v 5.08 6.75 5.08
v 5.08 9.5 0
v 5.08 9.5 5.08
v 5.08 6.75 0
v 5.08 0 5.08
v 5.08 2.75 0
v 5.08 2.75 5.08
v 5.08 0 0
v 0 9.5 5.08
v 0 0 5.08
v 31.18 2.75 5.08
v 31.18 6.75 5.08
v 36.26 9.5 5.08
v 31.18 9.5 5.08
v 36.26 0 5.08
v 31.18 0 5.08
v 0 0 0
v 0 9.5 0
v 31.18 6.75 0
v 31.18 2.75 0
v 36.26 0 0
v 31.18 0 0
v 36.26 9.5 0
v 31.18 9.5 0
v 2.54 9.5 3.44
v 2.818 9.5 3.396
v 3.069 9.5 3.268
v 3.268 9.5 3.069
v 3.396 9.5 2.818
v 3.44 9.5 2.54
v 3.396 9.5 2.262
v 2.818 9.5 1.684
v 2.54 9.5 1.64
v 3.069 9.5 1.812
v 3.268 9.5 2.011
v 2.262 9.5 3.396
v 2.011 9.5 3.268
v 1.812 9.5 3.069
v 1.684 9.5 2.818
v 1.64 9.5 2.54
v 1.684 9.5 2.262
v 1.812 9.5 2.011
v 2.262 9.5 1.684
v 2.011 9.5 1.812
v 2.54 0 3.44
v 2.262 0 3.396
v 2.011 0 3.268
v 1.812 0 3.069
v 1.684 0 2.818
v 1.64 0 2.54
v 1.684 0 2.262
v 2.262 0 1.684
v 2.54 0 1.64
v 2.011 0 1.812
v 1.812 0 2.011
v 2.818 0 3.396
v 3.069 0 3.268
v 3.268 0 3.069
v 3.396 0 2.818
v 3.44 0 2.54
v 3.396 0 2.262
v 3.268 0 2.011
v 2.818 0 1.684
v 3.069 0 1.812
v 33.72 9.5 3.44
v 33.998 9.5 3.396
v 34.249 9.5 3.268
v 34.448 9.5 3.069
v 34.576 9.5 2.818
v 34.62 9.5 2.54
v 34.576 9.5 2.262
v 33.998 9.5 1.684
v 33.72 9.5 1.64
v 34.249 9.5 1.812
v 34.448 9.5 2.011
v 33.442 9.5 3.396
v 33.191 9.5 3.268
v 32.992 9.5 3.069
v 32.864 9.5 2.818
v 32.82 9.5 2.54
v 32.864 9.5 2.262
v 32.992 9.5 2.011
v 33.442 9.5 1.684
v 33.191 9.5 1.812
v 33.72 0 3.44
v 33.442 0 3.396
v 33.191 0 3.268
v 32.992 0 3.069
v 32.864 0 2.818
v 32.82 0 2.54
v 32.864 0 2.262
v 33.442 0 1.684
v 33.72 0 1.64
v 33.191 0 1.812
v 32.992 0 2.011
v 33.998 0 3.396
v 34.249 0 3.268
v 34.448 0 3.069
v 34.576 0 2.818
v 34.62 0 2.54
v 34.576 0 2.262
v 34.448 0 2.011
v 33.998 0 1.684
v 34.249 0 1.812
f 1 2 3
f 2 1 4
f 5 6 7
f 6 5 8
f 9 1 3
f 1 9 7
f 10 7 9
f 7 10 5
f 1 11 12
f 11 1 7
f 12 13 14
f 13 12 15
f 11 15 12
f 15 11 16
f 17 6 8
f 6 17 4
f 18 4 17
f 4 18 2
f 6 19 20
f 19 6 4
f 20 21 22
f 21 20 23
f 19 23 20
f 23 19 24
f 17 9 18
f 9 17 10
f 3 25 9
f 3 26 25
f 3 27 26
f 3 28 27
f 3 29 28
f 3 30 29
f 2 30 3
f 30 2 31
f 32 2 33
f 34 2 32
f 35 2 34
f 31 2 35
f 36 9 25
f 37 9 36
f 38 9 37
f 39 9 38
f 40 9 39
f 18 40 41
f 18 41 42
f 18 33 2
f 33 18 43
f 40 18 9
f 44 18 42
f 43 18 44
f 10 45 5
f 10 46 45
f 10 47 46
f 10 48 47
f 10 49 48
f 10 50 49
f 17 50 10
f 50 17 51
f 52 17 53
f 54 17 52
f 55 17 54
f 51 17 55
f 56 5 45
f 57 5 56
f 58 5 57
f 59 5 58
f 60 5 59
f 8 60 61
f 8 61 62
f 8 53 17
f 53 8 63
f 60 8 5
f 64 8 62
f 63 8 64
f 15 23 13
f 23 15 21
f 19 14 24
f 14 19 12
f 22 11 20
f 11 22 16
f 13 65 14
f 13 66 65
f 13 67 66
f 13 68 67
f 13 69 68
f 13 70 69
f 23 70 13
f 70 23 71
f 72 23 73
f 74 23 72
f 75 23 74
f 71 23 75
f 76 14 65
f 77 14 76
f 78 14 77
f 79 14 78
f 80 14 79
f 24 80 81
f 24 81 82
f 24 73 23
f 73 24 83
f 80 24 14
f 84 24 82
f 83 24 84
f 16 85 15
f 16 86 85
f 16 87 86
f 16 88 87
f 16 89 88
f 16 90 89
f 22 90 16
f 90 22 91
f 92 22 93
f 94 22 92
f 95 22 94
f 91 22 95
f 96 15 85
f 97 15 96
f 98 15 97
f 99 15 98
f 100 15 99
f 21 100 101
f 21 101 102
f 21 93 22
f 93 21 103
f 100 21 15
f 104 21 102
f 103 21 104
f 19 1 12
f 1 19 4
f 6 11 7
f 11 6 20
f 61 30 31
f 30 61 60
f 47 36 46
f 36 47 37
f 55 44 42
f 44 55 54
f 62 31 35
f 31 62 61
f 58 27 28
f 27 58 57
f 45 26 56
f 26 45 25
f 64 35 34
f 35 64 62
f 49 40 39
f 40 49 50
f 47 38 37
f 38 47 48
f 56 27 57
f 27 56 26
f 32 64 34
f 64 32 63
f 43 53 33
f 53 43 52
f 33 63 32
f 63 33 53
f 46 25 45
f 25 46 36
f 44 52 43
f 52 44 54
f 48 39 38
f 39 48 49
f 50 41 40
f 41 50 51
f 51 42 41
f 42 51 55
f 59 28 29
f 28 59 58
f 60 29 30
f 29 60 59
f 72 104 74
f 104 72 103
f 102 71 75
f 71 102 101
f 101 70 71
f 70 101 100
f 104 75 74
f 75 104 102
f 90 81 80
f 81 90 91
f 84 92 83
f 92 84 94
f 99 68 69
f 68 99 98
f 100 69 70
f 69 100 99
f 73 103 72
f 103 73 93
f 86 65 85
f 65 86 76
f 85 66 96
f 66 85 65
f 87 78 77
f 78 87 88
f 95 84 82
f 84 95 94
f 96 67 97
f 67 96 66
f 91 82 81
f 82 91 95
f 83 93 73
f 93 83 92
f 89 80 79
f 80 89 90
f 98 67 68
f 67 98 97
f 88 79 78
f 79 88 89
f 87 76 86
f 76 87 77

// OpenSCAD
// must print two of this

base_height = 9.5;
base_length = 5.08;
base_width = 5.08;
bar_height = 4;
bar_width = 5.08;
hole_distance = 31.18;
hole_diameter = 1.8;

translate([base_length / 2, base_height / 2, base_width / 2]) {
    difference() {
        union() {
            cube([base_length, base_height, base_width], center=true);
            translate([hole_distance, 0, 0])
                cube([base_length, base_height, base_width], center=true);
            translate([hole_distance / 2, 0, -(base_width - bar_width) / 2])
                cube([hole_distance, bar_height, bar_width], center=true);
        }

        rotate([-90, 0, 0]) {
            cylinder(h=base_height, d=hole_diameter, $fn=20, center=true);
            translate([hole_distance, 0, 0])
                cylinder(h=base_height, d=hole_diameter, $fn=20, center=true);
        }
    }
}
